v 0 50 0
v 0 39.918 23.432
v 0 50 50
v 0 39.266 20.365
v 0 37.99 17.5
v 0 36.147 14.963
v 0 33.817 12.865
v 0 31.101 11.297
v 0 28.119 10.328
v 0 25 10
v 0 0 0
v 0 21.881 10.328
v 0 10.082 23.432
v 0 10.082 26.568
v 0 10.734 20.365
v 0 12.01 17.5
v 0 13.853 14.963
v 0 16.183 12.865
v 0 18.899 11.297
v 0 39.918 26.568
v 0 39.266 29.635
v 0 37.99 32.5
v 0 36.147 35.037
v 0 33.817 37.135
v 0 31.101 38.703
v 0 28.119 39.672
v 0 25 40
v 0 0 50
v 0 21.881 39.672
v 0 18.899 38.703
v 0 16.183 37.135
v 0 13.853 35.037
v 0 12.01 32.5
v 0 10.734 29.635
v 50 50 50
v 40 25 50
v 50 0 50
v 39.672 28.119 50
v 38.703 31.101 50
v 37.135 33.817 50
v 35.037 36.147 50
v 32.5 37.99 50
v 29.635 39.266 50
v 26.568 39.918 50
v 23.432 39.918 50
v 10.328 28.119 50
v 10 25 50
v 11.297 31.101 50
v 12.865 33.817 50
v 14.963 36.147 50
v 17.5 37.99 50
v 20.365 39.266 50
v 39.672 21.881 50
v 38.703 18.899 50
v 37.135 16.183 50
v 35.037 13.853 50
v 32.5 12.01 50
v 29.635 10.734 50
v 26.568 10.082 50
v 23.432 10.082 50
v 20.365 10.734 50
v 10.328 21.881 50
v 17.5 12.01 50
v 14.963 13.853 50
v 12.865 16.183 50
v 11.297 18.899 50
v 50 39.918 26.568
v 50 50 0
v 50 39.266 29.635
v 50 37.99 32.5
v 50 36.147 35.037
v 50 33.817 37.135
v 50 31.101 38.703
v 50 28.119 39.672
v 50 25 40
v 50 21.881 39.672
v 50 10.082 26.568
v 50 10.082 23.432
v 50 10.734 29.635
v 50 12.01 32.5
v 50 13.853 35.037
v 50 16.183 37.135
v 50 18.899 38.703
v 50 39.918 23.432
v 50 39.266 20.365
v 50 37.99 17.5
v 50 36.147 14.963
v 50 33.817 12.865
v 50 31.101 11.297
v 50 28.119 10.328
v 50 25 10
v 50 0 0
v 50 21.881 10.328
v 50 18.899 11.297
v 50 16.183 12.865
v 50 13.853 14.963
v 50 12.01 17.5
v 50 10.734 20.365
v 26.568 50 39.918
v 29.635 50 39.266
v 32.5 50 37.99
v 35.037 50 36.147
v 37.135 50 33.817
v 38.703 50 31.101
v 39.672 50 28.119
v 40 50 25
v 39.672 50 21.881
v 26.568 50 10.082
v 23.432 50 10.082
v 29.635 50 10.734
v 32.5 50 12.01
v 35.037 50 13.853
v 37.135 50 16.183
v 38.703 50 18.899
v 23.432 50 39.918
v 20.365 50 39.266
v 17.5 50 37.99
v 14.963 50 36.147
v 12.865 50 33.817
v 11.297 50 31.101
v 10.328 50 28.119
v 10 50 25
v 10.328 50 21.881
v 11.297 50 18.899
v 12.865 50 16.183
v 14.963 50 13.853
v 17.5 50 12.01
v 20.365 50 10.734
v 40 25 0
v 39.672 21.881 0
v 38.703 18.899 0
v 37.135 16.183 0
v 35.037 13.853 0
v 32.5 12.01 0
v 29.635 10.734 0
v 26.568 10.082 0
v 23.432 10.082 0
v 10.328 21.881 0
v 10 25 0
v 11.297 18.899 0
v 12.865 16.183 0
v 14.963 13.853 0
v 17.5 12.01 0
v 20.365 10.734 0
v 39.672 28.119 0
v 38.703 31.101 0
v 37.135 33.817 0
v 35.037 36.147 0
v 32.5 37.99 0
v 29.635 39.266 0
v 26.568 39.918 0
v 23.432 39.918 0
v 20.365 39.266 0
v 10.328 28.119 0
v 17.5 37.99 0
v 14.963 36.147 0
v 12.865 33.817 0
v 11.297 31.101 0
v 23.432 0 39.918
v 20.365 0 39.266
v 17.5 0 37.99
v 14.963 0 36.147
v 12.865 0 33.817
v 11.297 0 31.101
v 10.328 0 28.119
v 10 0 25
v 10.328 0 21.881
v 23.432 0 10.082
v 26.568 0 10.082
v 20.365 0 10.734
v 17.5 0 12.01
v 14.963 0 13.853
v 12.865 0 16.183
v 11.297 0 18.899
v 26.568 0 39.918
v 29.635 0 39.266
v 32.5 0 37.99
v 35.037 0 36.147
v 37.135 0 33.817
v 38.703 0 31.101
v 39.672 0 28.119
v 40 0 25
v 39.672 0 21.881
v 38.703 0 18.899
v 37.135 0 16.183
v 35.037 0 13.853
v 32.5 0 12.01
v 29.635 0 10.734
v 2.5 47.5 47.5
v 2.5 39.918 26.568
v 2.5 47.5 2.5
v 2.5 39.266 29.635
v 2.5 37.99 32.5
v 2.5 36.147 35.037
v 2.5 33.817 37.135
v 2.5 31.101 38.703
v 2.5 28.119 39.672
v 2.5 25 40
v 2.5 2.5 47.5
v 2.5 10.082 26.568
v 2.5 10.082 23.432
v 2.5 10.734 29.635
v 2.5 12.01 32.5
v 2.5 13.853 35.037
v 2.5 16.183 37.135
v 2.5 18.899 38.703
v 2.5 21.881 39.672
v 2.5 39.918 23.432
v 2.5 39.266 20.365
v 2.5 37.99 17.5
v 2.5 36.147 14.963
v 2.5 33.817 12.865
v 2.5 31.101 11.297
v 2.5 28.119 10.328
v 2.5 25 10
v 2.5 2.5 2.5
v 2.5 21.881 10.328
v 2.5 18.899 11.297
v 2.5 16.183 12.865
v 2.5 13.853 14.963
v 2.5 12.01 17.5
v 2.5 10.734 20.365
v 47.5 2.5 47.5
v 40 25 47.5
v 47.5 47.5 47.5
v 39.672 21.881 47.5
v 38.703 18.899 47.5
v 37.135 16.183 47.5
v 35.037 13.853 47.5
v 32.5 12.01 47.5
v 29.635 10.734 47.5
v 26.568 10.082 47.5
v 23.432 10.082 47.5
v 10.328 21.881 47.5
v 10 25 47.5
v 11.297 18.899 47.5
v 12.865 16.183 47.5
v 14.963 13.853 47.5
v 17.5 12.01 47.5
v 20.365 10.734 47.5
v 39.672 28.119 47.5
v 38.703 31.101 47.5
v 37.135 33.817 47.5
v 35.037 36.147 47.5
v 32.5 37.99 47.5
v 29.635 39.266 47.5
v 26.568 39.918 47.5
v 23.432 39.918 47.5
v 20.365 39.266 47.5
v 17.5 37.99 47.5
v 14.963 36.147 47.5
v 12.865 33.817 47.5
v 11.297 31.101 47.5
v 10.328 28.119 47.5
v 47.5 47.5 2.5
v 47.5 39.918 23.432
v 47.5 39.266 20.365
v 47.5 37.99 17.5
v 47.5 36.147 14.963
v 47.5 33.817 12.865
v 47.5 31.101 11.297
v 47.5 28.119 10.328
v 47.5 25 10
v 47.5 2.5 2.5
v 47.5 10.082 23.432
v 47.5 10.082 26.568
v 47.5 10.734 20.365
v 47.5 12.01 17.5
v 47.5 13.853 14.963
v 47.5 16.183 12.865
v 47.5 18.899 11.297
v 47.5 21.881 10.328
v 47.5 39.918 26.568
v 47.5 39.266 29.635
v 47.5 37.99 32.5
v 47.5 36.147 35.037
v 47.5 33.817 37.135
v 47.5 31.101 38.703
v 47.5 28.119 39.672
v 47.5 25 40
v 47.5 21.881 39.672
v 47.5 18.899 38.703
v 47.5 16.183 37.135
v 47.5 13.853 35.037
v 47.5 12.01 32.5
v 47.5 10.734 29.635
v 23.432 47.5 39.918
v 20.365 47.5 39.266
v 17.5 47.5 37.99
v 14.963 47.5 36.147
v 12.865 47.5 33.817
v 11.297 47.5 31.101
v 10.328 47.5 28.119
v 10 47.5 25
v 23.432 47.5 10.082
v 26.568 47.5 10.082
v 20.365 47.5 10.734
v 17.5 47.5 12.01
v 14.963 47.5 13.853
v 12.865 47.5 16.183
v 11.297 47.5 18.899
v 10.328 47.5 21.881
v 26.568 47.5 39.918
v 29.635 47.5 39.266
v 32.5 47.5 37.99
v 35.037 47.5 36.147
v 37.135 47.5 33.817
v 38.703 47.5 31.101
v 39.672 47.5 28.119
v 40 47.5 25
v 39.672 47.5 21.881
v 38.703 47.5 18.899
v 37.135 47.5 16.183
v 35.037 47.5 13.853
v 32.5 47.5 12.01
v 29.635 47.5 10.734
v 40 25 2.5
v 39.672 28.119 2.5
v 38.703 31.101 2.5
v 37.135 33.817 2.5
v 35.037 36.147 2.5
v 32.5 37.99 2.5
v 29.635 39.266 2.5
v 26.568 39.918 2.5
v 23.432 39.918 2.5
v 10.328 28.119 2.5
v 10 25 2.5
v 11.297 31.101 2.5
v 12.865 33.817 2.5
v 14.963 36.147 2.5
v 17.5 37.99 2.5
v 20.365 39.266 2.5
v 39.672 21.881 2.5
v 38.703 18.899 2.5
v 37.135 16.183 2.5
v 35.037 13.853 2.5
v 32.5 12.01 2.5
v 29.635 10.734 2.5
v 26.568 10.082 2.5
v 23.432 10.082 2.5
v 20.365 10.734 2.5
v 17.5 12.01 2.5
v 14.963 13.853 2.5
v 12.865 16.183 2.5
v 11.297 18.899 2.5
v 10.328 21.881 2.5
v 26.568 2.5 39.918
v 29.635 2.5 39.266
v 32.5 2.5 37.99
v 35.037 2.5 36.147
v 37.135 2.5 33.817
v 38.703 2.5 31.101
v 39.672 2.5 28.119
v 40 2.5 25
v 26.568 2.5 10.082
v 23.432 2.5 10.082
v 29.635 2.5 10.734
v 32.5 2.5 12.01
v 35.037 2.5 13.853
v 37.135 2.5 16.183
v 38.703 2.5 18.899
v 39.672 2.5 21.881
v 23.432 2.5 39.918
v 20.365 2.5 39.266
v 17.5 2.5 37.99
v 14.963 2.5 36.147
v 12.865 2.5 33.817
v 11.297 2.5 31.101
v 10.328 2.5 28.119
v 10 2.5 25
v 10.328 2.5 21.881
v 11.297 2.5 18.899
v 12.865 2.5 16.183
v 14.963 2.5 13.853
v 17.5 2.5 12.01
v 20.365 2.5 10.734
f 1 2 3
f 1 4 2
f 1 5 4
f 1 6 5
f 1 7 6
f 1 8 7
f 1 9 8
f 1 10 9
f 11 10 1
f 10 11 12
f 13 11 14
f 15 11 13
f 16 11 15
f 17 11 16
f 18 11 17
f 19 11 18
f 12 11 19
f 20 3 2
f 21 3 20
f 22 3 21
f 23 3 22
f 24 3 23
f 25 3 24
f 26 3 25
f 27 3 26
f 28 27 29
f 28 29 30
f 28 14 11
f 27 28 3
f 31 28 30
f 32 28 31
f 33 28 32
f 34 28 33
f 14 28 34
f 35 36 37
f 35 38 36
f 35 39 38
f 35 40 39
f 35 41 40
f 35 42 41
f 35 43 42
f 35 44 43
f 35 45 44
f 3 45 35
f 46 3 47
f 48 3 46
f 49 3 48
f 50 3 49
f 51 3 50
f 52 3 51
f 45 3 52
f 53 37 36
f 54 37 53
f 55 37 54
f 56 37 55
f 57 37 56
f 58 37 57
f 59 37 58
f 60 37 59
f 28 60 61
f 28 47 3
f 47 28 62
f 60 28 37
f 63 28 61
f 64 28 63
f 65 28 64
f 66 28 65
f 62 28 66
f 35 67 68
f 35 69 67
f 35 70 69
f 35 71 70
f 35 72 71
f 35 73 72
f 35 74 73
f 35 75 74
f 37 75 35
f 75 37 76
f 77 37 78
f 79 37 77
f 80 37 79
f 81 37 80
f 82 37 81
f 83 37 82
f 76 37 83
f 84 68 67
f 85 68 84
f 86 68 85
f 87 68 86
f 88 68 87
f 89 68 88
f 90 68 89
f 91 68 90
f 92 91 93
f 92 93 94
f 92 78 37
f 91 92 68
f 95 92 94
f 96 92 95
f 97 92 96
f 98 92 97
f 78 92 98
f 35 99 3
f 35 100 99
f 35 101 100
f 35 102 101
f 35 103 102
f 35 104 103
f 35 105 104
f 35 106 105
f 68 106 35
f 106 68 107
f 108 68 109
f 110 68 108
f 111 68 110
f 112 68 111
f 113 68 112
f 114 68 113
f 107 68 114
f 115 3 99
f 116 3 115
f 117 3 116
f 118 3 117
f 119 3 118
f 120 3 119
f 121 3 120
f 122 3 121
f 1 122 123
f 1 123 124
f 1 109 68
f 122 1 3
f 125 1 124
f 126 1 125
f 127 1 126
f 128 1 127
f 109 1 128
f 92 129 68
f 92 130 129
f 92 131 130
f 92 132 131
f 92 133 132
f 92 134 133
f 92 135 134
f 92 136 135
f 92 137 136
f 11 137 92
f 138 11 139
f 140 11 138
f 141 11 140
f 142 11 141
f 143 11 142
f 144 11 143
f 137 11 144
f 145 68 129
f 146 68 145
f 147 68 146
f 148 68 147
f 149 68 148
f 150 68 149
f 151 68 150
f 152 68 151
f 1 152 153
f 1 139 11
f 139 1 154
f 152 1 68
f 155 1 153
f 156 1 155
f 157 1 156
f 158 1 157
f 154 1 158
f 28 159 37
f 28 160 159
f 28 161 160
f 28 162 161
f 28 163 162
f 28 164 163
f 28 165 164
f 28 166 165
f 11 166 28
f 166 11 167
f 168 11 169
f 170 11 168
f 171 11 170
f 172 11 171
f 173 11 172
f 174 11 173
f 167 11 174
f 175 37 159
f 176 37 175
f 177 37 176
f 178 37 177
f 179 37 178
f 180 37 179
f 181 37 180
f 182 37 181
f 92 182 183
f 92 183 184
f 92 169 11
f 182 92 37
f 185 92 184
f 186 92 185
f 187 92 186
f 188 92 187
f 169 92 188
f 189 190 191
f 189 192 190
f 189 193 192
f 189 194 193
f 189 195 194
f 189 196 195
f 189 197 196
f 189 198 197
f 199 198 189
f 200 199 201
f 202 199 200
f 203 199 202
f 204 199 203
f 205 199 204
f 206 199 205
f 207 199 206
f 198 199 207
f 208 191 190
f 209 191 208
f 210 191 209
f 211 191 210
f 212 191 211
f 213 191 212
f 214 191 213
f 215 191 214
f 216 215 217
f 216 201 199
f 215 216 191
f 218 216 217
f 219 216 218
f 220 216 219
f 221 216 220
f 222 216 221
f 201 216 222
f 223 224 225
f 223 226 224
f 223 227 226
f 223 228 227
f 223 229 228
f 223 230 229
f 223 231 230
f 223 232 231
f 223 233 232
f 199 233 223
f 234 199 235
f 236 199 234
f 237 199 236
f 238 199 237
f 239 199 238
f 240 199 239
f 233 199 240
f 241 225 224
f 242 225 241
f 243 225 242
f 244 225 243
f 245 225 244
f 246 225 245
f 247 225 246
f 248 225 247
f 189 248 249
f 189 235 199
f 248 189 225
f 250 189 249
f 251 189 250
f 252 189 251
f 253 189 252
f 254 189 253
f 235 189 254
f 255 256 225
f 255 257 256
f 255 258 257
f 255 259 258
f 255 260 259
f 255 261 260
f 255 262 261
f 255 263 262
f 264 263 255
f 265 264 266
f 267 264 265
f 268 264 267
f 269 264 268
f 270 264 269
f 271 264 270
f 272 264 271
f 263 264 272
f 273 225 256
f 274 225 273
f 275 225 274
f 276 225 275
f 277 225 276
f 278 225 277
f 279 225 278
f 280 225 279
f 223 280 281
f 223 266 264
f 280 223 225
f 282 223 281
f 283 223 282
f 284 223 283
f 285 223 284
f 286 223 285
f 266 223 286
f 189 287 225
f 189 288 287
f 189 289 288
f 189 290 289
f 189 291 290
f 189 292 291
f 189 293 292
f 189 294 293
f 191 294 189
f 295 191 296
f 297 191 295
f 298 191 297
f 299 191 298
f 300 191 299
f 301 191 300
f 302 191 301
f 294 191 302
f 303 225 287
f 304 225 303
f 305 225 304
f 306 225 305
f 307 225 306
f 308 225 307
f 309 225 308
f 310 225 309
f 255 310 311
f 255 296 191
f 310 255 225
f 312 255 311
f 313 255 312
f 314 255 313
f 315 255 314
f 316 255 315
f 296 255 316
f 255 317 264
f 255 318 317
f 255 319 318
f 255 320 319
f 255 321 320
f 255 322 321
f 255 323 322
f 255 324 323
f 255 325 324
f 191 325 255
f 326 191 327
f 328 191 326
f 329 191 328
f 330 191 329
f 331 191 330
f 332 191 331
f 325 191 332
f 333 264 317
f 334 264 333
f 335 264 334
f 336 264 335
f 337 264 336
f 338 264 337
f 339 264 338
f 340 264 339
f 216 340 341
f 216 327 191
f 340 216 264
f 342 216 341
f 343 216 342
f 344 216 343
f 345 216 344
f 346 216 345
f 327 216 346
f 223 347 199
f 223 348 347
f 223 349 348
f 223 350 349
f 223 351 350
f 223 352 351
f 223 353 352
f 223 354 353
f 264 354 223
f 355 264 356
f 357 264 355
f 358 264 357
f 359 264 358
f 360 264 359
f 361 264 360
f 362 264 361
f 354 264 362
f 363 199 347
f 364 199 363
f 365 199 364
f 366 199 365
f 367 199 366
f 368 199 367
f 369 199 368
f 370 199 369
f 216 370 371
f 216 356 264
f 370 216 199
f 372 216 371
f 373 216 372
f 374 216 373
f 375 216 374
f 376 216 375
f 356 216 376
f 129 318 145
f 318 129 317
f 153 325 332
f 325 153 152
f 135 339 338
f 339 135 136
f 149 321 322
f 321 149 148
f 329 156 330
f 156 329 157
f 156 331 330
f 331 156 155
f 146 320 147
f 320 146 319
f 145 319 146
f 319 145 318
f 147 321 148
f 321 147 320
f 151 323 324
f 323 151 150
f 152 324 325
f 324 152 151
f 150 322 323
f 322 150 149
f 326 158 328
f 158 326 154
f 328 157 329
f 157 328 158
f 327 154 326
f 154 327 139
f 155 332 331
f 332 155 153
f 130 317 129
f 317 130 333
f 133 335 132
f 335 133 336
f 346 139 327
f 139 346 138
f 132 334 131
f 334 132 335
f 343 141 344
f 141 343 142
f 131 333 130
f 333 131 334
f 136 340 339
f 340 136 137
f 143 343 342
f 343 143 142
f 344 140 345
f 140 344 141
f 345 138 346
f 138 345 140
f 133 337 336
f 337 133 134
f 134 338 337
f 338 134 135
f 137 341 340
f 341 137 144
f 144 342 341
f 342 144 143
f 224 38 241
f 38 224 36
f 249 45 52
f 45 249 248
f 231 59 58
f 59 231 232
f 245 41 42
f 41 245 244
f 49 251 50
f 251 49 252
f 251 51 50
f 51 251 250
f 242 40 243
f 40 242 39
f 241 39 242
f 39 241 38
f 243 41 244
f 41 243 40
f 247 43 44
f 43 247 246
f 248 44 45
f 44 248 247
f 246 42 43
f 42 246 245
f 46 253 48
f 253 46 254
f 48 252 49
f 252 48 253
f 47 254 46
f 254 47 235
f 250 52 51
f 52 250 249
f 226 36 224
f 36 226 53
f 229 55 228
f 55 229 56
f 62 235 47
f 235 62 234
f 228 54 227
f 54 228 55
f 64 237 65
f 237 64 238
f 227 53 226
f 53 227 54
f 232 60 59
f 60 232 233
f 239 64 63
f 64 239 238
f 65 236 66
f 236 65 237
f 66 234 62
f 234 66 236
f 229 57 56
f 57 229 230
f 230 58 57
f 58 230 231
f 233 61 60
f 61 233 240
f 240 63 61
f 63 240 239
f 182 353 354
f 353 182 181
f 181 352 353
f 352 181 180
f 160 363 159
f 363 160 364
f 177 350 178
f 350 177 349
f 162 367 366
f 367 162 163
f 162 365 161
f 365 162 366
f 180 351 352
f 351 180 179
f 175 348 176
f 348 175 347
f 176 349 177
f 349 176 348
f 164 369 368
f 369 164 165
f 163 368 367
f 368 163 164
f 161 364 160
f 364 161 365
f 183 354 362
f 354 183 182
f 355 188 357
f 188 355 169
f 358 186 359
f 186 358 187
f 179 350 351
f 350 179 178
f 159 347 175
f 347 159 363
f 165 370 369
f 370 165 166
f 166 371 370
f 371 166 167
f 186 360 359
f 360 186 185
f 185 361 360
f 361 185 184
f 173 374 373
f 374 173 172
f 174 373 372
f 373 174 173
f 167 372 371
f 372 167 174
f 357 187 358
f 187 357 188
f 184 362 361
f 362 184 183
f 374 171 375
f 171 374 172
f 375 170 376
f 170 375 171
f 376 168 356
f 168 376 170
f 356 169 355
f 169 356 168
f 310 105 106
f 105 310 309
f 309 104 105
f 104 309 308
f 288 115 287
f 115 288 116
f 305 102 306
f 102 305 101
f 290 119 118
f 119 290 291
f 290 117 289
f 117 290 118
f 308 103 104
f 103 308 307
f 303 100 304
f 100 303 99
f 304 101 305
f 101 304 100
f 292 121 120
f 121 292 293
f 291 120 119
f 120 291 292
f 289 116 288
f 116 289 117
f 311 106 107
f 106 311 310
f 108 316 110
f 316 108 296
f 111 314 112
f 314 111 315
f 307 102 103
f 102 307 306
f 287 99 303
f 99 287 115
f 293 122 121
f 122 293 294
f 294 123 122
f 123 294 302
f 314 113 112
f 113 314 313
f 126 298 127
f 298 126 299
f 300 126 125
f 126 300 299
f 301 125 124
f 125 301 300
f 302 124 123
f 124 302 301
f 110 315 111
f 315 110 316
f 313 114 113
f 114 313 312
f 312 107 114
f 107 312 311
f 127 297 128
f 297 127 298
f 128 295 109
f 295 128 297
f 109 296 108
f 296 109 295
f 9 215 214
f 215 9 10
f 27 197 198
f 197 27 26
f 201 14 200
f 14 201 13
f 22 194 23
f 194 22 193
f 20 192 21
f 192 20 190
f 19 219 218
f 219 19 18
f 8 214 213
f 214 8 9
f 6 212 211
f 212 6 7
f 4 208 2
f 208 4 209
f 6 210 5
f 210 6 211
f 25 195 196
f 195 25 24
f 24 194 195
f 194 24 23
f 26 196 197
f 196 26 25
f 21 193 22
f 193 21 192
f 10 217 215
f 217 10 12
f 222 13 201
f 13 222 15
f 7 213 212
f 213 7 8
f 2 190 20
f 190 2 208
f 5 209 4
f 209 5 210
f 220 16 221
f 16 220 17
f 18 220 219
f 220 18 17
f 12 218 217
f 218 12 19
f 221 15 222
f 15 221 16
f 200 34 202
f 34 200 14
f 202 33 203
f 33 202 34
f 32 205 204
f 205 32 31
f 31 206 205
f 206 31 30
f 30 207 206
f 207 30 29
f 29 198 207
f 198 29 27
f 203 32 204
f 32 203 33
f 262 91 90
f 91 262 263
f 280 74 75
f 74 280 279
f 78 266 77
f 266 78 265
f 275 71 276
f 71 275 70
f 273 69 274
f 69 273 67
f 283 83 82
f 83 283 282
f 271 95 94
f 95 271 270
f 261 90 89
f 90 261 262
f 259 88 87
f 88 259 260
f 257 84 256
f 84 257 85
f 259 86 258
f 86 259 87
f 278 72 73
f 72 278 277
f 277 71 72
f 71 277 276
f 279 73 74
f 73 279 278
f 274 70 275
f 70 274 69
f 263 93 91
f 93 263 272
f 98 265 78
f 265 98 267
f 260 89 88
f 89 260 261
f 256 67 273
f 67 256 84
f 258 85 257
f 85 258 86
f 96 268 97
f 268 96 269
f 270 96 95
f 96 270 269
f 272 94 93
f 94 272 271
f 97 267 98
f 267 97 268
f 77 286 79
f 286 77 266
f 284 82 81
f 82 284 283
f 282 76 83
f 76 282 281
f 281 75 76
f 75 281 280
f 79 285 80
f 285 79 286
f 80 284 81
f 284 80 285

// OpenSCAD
difference(){
    cube([50,50,50]);
    #translate([2.5,2.5,2.5])cube(45);
    #translate([25,25,0])cylinder(h=2.5, r1=15,r2=15);
    #translate([25,25,47.5])cylinder(h=2.5, r1=15,r2=15);
rotate([90,0,0]) #translate([25,25,-2.5])cylinder(h=2.5, r1=15,r2=15);
    rotate([90,0,0]) #translate([25,25,-50])cylinder(h=2.5, r1=15,r2=15);
    rotate([0,90,0]) #translate([-25,25,])cylinder(h=2.5, r1=15,r2=15);
    rotate([0,90,0]) #translate([-25,25,47.5])cylinder(h=2.5, r1=15,r2=15);
    
}
